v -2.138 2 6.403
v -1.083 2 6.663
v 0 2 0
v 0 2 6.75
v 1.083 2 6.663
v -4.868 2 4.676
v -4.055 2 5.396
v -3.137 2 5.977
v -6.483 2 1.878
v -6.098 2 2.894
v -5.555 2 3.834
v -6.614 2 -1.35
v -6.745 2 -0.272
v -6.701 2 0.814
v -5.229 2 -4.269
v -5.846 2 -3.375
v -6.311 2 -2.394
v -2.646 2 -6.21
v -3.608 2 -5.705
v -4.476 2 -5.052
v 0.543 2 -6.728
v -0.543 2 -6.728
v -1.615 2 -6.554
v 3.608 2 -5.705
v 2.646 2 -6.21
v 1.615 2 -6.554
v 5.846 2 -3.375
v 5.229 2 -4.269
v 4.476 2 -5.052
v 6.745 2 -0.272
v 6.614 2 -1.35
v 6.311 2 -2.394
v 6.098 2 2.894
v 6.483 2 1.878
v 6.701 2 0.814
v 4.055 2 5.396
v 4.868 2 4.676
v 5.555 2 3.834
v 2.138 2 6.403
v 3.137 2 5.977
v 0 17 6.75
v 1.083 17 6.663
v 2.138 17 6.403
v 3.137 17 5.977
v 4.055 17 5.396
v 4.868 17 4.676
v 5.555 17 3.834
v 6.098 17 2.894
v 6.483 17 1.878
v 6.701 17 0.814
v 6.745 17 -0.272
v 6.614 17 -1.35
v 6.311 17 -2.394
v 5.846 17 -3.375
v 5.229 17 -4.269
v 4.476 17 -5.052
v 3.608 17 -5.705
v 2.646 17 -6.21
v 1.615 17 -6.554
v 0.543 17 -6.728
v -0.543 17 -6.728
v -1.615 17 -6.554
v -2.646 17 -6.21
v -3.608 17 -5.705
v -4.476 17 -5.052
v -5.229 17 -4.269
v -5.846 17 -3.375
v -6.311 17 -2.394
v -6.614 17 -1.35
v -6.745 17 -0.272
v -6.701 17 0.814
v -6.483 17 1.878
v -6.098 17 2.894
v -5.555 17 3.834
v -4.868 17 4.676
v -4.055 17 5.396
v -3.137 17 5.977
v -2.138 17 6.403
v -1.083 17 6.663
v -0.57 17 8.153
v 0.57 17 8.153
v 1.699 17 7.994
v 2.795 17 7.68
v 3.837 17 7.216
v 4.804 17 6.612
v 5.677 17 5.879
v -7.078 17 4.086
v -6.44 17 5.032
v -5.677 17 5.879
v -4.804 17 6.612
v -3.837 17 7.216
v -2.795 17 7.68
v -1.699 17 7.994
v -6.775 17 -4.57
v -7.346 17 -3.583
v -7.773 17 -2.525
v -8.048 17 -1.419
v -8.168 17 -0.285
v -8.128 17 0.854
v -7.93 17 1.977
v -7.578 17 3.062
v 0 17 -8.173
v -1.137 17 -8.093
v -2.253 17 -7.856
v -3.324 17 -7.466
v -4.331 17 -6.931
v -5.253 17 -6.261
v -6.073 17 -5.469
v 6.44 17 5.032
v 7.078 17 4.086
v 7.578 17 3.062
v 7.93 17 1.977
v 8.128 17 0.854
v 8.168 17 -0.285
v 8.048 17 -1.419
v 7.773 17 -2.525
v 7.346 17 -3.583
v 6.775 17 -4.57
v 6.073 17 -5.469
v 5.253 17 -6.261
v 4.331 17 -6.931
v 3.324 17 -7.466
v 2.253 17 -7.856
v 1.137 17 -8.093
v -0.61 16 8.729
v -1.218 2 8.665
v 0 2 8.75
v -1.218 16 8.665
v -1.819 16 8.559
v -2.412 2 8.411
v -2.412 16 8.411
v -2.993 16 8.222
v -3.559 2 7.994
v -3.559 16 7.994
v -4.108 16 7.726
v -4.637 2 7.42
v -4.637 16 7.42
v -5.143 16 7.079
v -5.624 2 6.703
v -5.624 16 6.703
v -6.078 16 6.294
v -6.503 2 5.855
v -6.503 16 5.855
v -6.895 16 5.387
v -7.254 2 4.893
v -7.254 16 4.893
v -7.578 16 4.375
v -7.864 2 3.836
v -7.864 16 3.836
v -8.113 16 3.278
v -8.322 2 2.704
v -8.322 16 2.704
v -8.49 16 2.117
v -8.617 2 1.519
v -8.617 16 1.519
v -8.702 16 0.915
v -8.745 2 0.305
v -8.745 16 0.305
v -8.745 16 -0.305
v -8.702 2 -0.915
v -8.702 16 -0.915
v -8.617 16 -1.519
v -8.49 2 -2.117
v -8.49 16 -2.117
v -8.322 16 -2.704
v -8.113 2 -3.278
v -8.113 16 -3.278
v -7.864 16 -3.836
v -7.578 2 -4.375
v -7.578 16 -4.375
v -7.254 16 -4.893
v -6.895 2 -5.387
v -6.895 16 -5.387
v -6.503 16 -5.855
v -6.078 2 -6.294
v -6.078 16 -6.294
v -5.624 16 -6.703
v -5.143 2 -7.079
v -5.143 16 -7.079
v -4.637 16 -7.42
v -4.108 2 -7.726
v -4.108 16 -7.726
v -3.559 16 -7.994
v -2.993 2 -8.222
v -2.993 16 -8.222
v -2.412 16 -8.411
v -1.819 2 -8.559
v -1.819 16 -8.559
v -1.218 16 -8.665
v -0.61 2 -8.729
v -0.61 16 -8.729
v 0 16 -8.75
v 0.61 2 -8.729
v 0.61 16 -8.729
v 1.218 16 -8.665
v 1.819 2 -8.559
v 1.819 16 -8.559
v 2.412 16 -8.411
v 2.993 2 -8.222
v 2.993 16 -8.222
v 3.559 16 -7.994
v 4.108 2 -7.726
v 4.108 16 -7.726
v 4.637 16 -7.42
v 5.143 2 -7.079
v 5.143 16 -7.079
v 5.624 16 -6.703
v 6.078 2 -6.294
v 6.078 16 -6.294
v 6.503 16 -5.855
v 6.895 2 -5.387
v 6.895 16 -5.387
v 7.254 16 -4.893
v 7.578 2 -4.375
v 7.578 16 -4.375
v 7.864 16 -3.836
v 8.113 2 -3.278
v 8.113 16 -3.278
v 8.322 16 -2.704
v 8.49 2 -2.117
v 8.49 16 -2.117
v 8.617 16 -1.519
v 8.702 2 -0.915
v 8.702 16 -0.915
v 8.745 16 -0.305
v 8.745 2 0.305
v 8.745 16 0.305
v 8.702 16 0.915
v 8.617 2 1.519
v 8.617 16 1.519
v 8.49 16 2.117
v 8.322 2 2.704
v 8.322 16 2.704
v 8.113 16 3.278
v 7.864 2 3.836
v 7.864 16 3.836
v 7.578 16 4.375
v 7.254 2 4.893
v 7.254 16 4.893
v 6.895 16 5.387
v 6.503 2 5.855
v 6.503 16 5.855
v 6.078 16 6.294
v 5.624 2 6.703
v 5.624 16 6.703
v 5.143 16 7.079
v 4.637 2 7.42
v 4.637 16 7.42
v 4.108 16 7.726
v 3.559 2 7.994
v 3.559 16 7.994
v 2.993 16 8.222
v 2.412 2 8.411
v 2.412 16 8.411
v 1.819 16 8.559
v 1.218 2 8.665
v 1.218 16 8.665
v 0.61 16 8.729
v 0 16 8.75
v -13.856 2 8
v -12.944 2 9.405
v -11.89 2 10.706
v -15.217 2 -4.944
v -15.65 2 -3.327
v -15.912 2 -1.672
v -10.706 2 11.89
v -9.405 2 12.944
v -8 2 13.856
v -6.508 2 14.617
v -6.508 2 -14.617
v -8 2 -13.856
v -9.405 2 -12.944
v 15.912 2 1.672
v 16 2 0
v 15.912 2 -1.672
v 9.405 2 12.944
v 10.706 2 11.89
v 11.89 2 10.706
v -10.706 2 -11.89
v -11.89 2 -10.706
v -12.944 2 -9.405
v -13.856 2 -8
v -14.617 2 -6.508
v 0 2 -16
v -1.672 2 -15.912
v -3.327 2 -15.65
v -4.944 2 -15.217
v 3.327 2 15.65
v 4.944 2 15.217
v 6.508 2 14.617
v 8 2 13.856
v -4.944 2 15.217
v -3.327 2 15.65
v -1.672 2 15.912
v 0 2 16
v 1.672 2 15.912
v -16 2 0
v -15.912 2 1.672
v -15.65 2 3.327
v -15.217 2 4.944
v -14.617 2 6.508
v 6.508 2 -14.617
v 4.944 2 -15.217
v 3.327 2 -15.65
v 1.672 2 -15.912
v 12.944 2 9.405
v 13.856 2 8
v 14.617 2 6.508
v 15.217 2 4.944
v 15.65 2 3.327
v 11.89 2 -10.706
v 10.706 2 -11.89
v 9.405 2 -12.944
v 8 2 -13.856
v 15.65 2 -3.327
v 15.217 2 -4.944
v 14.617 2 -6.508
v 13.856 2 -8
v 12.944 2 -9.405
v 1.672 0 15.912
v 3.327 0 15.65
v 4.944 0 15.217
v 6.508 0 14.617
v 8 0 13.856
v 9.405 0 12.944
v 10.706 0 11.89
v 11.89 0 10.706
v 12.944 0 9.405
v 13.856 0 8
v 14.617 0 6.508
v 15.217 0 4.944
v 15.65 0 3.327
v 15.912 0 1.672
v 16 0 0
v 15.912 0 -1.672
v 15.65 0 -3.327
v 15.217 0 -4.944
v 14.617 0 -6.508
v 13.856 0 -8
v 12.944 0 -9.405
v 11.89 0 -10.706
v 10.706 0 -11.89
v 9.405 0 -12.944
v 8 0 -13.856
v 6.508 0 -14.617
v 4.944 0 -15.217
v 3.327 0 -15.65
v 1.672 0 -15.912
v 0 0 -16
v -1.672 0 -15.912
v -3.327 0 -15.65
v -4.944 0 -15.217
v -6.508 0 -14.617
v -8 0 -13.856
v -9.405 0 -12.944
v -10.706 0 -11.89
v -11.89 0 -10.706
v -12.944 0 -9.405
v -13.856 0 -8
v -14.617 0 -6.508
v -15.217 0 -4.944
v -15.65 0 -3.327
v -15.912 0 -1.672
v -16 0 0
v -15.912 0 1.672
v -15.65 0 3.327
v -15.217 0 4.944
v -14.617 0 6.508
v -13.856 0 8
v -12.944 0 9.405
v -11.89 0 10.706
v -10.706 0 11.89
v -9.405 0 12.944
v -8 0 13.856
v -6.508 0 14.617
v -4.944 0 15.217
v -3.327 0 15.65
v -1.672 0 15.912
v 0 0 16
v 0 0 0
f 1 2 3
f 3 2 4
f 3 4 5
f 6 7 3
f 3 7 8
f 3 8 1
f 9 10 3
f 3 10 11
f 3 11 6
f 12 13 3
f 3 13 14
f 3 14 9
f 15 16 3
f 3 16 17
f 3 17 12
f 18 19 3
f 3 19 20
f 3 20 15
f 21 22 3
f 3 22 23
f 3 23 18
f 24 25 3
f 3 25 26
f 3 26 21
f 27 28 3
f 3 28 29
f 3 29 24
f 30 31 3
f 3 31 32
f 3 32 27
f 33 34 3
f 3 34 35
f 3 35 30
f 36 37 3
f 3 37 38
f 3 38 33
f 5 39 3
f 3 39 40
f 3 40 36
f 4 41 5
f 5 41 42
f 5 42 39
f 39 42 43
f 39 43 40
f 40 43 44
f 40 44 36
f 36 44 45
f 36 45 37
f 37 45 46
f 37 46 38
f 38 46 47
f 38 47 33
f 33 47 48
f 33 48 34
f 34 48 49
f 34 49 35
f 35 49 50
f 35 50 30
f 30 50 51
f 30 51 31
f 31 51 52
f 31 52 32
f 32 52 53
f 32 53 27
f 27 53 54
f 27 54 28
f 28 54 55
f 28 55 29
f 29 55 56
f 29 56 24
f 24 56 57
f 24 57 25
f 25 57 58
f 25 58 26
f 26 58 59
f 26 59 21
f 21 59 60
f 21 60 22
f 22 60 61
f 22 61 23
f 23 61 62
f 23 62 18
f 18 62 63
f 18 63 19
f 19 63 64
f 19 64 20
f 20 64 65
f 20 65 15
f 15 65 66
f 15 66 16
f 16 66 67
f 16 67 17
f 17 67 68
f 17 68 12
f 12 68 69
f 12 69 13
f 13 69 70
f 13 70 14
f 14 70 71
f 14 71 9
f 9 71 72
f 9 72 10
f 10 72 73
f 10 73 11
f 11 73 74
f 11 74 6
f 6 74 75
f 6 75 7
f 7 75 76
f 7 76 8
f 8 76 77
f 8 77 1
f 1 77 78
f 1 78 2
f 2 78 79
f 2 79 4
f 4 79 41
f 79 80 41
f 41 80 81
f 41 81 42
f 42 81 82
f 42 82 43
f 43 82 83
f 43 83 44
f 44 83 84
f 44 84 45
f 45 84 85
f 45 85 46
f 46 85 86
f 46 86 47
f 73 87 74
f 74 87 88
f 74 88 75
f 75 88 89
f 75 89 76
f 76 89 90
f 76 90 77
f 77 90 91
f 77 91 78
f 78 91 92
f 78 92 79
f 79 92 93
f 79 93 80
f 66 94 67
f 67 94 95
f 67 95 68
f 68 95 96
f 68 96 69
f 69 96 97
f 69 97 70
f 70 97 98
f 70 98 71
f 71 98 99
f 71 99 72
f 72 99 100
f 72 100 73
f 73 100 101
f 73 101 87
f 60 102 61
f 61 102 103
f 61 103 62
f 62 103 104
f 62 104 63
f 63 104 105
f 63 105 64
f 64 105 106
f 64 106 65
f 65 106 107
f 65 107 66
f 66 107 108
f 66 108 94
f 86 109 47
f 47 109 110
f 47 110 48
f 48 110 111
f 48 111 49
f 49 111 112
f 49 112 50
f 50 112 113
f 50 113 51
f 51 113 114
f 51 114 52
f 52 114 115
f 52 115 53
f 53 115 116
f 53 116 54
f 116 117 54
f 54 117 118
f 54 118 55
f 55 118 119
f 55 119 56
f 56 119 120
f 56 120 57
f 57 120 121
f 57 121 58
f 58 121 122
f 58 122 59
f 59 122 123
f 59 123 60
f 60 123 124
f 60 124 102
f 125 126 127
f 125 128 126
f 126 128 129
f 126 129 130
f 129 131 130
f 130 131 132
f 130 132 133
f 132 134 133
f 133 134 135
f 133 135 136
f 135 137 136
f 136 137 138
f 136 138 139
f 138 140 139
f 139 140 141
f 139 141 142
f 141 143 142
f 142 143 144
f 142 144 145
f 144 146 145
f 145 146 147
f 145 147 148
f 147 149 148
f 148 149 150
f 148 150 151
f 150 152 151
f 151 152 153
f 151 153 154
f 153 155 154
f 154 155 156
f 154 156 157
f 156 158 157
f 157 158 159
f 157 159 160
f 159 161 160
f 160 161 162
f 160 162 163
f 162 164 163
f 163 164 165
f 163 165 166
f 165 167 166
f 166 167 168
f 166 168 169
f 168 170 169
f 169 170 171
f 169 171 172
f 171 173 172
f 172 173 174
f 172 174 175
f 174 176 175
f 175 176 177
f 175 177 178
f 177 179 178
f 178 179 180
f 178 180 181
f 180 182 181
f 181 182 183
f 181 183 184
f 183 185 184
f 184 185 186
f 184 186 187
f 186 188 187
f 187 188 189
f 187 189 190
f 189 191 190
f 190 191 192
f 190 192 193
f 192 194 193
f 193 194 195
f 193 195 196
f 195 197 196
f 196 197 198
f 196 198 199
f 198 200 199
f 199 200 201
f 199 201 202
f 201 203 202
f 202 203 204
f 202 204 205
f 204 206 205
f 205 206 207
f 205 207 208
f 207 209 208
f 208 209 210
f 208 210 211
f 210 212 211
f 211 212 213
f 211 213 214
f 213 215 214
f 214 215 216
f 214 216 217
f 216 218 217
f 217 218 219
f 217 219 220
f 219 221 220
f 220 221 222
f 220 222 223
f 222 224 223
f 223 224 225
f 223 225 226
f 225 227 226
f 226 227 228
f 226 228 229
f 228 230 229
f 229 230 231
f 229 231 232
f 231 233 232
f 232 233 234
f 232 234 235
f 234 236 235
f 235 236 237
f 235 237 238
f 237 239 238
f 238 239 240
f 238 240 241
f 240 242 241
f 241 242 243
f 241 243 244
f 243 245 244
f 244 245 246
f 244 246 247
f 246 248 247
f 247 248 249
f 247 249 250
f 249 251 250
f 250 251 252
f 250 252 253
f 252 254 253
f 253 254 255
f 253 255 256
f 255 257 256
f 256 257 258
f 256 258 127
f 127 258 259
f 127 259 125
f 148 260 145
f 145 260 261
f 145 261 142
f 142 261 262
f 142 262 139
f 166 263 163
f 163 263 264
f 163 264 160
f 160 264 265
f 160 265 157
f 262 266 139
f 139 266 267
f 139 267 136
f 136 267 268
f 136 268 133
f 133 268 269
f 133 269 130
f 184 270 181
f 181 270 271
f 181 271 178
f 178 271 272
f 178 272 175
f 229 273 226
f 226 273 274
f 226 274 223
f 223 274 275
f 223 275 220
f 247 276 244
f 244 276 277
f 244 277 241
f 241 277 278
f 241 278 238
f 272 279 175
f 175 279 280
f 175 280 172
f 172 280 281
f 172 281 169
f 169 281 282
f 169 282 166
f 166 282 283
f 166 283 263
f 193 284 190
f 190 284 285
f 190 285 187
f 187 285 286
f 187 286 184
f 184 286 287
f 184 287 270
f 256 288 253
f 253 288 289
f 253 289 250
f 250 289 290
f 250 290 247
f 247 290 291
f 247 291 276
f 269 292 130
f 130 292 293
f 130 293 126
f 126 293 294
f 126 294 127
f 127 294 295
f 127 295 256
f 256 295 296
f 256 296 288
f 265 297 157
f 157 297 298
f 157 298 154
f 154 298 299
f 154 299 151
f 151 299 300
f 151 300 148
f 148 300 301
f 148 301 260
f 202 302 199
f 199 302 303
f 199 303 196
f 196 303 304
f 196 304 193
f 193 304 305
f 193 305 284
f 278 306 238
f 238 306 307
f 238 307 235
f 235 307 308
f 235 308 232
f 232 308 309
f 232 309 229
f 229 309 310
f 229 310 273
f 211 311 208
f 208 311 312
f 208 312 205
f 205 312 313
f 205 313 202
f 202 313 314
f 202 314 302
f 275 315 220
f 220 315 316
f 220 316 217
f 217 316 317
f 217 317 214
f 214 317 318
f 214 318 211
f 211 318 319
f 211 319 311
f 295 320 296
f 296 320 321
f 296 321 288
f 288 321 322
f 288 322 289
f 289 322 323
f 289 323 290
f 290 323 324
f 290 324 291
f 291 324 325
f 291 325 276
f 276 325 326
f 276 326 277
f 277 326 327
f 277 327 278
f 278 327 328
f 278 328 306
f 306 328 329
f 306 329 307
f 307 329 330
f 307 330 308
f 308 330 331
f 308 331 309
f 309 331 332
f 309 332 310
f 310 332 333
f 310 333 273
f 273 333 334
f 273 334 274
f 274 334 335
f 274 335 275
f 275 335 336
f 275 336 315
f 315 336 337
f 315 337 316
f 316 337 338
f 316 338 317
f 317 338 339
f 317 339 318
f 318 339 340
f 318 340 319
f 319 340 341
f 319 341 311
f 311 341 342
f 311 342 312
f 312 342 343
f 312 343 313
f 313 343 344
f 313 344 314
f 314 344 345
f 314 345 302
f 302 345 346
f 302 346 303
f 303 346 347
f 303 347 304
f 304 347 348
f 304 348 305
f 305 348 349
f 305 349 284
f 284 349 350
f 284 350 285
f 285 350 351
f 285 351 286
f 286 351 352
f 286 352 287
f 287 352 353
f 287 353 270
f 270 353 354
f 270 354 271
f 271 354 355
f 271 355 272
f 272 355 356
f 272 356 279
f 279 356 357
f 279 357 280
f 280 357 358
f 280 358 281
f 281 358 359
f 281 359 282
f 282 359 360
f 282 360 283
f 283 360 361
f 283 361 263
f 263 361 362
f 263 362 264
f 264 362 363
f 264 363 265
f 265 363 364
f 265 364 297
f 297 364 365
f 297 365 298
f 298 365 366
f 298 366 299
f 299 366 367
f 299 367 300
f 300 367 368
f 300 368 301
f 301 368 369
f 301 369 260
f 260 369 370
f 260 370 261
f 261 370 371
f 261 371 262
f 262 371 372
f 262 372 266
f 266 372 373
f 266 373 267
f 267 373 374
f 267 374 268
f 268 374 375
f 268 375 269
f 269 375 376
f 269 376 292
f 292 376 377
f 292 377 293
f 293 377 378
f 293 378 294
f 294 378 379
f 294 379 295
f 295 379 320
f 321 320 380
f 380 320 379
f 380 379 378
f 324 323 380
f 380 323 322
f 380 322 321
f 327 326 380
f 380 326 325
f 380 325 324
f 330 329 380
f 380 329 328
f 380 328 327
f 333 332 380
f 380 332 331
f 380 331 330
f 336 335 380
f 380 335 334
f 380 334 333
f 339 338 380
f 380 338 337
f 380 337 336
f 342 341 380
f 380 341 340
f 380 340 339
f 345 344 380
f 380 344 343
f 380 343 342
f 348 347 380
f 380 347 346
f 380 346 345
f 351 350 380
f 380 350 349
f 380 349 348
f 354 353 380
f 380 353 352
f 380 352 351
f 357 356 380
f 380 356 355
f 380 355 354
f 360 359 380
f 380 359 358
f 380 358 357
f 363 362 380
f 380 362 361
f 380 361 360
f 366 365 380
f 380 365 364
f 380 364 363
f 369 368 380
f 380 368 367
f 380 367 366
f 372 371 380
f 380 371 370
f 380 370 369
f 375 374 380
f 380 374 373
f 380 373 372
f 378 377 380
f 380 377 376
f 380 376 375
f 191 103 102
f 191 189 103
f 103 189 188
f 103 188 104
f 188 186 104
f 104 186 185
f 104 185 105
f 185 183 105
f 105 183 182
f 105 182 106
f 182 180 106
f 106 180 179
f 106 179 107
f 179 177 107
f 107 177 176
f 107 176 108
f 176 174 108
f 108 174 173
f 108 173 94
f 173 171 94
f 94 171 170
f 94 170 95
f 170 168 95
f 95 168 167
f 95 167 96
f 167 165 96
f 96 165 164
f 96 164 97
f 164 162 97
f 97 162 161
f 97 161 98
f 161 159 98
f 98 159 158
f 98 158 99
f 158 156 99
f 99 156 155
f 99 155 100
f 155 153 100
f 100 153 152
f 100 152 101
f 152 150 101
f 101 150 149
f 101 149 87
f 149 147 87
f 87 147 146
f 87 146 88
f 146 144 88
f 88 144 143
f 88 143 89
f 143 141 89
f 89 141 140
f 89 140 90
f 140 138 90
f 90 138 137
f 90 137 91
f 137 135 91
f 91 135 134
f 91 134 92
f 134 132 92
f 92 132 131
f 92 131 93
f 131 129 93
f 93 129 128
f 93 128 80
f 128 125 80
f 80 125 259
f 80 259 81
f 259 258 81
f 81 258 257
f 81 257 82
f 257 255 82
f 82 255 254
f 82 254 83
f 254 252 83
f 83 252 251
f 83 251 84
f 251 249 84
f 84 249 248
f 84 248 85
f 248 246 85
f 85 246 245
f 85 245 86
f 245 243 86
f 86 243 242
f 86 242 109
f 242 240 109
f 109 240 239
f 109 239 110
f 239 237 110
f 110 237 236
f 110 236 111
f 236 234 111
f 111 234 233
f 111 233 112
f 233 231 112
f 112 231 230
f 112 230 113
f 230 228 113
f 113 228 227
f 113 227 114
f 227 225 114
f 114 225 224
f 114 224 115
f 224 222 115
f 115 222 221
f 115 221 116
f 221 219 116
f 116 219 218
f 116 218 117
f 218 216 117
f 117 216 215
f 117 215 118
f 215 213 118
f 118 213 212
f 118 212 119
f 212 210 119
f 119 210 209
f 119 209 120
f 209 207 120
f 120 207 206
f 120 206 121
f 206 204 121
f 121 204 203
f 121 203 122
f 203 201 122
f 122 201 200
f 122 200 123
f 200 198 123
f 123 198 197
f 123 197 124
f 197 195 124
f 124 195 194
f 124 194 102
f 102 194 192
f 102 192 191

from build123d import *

# Parameters (mm, degrees)
CHAMFER1_SIZE  = 1
CHAMFER1_SIZE2 = 0.577350269


with BuildPart() as part:
    # Sketch1 → Revolve1 (revolve)
    with BuildSketch(Plane.XY, mode=Mode.PRIVATE) as revolve1_sk:
        Polygon((16, 2), (9, 2), (8.75, 2), (8.75, 17), (6.75, 17), (6.75, 2), (0, 2), (0, 0), (16, 0), align=None)
    revolve(revolve1_sk.sketch.rotate(Axis((0, 21.623043933, 0), (0, -1, 0)), 90), axis=Axis((0, 21.623043933, 0), (0, -1, 0)))

    # Chamfer1
    chamfer1_edges = [part.edges().sort_by_distance(p)[0] for p in [
        (0, 17, -8.75),
    ]]
    chamfer1_side = [part.faces().sort_by_distance(p)[0] for p in [
        (0, 9.5, -8.75),
    ]]
    chamfer(chamfer1_edges, length=CHAMFER1_SIZE, length2=CHAMFER1_SIZE2, reference=chamfer1_side[0])


solid = part.part
